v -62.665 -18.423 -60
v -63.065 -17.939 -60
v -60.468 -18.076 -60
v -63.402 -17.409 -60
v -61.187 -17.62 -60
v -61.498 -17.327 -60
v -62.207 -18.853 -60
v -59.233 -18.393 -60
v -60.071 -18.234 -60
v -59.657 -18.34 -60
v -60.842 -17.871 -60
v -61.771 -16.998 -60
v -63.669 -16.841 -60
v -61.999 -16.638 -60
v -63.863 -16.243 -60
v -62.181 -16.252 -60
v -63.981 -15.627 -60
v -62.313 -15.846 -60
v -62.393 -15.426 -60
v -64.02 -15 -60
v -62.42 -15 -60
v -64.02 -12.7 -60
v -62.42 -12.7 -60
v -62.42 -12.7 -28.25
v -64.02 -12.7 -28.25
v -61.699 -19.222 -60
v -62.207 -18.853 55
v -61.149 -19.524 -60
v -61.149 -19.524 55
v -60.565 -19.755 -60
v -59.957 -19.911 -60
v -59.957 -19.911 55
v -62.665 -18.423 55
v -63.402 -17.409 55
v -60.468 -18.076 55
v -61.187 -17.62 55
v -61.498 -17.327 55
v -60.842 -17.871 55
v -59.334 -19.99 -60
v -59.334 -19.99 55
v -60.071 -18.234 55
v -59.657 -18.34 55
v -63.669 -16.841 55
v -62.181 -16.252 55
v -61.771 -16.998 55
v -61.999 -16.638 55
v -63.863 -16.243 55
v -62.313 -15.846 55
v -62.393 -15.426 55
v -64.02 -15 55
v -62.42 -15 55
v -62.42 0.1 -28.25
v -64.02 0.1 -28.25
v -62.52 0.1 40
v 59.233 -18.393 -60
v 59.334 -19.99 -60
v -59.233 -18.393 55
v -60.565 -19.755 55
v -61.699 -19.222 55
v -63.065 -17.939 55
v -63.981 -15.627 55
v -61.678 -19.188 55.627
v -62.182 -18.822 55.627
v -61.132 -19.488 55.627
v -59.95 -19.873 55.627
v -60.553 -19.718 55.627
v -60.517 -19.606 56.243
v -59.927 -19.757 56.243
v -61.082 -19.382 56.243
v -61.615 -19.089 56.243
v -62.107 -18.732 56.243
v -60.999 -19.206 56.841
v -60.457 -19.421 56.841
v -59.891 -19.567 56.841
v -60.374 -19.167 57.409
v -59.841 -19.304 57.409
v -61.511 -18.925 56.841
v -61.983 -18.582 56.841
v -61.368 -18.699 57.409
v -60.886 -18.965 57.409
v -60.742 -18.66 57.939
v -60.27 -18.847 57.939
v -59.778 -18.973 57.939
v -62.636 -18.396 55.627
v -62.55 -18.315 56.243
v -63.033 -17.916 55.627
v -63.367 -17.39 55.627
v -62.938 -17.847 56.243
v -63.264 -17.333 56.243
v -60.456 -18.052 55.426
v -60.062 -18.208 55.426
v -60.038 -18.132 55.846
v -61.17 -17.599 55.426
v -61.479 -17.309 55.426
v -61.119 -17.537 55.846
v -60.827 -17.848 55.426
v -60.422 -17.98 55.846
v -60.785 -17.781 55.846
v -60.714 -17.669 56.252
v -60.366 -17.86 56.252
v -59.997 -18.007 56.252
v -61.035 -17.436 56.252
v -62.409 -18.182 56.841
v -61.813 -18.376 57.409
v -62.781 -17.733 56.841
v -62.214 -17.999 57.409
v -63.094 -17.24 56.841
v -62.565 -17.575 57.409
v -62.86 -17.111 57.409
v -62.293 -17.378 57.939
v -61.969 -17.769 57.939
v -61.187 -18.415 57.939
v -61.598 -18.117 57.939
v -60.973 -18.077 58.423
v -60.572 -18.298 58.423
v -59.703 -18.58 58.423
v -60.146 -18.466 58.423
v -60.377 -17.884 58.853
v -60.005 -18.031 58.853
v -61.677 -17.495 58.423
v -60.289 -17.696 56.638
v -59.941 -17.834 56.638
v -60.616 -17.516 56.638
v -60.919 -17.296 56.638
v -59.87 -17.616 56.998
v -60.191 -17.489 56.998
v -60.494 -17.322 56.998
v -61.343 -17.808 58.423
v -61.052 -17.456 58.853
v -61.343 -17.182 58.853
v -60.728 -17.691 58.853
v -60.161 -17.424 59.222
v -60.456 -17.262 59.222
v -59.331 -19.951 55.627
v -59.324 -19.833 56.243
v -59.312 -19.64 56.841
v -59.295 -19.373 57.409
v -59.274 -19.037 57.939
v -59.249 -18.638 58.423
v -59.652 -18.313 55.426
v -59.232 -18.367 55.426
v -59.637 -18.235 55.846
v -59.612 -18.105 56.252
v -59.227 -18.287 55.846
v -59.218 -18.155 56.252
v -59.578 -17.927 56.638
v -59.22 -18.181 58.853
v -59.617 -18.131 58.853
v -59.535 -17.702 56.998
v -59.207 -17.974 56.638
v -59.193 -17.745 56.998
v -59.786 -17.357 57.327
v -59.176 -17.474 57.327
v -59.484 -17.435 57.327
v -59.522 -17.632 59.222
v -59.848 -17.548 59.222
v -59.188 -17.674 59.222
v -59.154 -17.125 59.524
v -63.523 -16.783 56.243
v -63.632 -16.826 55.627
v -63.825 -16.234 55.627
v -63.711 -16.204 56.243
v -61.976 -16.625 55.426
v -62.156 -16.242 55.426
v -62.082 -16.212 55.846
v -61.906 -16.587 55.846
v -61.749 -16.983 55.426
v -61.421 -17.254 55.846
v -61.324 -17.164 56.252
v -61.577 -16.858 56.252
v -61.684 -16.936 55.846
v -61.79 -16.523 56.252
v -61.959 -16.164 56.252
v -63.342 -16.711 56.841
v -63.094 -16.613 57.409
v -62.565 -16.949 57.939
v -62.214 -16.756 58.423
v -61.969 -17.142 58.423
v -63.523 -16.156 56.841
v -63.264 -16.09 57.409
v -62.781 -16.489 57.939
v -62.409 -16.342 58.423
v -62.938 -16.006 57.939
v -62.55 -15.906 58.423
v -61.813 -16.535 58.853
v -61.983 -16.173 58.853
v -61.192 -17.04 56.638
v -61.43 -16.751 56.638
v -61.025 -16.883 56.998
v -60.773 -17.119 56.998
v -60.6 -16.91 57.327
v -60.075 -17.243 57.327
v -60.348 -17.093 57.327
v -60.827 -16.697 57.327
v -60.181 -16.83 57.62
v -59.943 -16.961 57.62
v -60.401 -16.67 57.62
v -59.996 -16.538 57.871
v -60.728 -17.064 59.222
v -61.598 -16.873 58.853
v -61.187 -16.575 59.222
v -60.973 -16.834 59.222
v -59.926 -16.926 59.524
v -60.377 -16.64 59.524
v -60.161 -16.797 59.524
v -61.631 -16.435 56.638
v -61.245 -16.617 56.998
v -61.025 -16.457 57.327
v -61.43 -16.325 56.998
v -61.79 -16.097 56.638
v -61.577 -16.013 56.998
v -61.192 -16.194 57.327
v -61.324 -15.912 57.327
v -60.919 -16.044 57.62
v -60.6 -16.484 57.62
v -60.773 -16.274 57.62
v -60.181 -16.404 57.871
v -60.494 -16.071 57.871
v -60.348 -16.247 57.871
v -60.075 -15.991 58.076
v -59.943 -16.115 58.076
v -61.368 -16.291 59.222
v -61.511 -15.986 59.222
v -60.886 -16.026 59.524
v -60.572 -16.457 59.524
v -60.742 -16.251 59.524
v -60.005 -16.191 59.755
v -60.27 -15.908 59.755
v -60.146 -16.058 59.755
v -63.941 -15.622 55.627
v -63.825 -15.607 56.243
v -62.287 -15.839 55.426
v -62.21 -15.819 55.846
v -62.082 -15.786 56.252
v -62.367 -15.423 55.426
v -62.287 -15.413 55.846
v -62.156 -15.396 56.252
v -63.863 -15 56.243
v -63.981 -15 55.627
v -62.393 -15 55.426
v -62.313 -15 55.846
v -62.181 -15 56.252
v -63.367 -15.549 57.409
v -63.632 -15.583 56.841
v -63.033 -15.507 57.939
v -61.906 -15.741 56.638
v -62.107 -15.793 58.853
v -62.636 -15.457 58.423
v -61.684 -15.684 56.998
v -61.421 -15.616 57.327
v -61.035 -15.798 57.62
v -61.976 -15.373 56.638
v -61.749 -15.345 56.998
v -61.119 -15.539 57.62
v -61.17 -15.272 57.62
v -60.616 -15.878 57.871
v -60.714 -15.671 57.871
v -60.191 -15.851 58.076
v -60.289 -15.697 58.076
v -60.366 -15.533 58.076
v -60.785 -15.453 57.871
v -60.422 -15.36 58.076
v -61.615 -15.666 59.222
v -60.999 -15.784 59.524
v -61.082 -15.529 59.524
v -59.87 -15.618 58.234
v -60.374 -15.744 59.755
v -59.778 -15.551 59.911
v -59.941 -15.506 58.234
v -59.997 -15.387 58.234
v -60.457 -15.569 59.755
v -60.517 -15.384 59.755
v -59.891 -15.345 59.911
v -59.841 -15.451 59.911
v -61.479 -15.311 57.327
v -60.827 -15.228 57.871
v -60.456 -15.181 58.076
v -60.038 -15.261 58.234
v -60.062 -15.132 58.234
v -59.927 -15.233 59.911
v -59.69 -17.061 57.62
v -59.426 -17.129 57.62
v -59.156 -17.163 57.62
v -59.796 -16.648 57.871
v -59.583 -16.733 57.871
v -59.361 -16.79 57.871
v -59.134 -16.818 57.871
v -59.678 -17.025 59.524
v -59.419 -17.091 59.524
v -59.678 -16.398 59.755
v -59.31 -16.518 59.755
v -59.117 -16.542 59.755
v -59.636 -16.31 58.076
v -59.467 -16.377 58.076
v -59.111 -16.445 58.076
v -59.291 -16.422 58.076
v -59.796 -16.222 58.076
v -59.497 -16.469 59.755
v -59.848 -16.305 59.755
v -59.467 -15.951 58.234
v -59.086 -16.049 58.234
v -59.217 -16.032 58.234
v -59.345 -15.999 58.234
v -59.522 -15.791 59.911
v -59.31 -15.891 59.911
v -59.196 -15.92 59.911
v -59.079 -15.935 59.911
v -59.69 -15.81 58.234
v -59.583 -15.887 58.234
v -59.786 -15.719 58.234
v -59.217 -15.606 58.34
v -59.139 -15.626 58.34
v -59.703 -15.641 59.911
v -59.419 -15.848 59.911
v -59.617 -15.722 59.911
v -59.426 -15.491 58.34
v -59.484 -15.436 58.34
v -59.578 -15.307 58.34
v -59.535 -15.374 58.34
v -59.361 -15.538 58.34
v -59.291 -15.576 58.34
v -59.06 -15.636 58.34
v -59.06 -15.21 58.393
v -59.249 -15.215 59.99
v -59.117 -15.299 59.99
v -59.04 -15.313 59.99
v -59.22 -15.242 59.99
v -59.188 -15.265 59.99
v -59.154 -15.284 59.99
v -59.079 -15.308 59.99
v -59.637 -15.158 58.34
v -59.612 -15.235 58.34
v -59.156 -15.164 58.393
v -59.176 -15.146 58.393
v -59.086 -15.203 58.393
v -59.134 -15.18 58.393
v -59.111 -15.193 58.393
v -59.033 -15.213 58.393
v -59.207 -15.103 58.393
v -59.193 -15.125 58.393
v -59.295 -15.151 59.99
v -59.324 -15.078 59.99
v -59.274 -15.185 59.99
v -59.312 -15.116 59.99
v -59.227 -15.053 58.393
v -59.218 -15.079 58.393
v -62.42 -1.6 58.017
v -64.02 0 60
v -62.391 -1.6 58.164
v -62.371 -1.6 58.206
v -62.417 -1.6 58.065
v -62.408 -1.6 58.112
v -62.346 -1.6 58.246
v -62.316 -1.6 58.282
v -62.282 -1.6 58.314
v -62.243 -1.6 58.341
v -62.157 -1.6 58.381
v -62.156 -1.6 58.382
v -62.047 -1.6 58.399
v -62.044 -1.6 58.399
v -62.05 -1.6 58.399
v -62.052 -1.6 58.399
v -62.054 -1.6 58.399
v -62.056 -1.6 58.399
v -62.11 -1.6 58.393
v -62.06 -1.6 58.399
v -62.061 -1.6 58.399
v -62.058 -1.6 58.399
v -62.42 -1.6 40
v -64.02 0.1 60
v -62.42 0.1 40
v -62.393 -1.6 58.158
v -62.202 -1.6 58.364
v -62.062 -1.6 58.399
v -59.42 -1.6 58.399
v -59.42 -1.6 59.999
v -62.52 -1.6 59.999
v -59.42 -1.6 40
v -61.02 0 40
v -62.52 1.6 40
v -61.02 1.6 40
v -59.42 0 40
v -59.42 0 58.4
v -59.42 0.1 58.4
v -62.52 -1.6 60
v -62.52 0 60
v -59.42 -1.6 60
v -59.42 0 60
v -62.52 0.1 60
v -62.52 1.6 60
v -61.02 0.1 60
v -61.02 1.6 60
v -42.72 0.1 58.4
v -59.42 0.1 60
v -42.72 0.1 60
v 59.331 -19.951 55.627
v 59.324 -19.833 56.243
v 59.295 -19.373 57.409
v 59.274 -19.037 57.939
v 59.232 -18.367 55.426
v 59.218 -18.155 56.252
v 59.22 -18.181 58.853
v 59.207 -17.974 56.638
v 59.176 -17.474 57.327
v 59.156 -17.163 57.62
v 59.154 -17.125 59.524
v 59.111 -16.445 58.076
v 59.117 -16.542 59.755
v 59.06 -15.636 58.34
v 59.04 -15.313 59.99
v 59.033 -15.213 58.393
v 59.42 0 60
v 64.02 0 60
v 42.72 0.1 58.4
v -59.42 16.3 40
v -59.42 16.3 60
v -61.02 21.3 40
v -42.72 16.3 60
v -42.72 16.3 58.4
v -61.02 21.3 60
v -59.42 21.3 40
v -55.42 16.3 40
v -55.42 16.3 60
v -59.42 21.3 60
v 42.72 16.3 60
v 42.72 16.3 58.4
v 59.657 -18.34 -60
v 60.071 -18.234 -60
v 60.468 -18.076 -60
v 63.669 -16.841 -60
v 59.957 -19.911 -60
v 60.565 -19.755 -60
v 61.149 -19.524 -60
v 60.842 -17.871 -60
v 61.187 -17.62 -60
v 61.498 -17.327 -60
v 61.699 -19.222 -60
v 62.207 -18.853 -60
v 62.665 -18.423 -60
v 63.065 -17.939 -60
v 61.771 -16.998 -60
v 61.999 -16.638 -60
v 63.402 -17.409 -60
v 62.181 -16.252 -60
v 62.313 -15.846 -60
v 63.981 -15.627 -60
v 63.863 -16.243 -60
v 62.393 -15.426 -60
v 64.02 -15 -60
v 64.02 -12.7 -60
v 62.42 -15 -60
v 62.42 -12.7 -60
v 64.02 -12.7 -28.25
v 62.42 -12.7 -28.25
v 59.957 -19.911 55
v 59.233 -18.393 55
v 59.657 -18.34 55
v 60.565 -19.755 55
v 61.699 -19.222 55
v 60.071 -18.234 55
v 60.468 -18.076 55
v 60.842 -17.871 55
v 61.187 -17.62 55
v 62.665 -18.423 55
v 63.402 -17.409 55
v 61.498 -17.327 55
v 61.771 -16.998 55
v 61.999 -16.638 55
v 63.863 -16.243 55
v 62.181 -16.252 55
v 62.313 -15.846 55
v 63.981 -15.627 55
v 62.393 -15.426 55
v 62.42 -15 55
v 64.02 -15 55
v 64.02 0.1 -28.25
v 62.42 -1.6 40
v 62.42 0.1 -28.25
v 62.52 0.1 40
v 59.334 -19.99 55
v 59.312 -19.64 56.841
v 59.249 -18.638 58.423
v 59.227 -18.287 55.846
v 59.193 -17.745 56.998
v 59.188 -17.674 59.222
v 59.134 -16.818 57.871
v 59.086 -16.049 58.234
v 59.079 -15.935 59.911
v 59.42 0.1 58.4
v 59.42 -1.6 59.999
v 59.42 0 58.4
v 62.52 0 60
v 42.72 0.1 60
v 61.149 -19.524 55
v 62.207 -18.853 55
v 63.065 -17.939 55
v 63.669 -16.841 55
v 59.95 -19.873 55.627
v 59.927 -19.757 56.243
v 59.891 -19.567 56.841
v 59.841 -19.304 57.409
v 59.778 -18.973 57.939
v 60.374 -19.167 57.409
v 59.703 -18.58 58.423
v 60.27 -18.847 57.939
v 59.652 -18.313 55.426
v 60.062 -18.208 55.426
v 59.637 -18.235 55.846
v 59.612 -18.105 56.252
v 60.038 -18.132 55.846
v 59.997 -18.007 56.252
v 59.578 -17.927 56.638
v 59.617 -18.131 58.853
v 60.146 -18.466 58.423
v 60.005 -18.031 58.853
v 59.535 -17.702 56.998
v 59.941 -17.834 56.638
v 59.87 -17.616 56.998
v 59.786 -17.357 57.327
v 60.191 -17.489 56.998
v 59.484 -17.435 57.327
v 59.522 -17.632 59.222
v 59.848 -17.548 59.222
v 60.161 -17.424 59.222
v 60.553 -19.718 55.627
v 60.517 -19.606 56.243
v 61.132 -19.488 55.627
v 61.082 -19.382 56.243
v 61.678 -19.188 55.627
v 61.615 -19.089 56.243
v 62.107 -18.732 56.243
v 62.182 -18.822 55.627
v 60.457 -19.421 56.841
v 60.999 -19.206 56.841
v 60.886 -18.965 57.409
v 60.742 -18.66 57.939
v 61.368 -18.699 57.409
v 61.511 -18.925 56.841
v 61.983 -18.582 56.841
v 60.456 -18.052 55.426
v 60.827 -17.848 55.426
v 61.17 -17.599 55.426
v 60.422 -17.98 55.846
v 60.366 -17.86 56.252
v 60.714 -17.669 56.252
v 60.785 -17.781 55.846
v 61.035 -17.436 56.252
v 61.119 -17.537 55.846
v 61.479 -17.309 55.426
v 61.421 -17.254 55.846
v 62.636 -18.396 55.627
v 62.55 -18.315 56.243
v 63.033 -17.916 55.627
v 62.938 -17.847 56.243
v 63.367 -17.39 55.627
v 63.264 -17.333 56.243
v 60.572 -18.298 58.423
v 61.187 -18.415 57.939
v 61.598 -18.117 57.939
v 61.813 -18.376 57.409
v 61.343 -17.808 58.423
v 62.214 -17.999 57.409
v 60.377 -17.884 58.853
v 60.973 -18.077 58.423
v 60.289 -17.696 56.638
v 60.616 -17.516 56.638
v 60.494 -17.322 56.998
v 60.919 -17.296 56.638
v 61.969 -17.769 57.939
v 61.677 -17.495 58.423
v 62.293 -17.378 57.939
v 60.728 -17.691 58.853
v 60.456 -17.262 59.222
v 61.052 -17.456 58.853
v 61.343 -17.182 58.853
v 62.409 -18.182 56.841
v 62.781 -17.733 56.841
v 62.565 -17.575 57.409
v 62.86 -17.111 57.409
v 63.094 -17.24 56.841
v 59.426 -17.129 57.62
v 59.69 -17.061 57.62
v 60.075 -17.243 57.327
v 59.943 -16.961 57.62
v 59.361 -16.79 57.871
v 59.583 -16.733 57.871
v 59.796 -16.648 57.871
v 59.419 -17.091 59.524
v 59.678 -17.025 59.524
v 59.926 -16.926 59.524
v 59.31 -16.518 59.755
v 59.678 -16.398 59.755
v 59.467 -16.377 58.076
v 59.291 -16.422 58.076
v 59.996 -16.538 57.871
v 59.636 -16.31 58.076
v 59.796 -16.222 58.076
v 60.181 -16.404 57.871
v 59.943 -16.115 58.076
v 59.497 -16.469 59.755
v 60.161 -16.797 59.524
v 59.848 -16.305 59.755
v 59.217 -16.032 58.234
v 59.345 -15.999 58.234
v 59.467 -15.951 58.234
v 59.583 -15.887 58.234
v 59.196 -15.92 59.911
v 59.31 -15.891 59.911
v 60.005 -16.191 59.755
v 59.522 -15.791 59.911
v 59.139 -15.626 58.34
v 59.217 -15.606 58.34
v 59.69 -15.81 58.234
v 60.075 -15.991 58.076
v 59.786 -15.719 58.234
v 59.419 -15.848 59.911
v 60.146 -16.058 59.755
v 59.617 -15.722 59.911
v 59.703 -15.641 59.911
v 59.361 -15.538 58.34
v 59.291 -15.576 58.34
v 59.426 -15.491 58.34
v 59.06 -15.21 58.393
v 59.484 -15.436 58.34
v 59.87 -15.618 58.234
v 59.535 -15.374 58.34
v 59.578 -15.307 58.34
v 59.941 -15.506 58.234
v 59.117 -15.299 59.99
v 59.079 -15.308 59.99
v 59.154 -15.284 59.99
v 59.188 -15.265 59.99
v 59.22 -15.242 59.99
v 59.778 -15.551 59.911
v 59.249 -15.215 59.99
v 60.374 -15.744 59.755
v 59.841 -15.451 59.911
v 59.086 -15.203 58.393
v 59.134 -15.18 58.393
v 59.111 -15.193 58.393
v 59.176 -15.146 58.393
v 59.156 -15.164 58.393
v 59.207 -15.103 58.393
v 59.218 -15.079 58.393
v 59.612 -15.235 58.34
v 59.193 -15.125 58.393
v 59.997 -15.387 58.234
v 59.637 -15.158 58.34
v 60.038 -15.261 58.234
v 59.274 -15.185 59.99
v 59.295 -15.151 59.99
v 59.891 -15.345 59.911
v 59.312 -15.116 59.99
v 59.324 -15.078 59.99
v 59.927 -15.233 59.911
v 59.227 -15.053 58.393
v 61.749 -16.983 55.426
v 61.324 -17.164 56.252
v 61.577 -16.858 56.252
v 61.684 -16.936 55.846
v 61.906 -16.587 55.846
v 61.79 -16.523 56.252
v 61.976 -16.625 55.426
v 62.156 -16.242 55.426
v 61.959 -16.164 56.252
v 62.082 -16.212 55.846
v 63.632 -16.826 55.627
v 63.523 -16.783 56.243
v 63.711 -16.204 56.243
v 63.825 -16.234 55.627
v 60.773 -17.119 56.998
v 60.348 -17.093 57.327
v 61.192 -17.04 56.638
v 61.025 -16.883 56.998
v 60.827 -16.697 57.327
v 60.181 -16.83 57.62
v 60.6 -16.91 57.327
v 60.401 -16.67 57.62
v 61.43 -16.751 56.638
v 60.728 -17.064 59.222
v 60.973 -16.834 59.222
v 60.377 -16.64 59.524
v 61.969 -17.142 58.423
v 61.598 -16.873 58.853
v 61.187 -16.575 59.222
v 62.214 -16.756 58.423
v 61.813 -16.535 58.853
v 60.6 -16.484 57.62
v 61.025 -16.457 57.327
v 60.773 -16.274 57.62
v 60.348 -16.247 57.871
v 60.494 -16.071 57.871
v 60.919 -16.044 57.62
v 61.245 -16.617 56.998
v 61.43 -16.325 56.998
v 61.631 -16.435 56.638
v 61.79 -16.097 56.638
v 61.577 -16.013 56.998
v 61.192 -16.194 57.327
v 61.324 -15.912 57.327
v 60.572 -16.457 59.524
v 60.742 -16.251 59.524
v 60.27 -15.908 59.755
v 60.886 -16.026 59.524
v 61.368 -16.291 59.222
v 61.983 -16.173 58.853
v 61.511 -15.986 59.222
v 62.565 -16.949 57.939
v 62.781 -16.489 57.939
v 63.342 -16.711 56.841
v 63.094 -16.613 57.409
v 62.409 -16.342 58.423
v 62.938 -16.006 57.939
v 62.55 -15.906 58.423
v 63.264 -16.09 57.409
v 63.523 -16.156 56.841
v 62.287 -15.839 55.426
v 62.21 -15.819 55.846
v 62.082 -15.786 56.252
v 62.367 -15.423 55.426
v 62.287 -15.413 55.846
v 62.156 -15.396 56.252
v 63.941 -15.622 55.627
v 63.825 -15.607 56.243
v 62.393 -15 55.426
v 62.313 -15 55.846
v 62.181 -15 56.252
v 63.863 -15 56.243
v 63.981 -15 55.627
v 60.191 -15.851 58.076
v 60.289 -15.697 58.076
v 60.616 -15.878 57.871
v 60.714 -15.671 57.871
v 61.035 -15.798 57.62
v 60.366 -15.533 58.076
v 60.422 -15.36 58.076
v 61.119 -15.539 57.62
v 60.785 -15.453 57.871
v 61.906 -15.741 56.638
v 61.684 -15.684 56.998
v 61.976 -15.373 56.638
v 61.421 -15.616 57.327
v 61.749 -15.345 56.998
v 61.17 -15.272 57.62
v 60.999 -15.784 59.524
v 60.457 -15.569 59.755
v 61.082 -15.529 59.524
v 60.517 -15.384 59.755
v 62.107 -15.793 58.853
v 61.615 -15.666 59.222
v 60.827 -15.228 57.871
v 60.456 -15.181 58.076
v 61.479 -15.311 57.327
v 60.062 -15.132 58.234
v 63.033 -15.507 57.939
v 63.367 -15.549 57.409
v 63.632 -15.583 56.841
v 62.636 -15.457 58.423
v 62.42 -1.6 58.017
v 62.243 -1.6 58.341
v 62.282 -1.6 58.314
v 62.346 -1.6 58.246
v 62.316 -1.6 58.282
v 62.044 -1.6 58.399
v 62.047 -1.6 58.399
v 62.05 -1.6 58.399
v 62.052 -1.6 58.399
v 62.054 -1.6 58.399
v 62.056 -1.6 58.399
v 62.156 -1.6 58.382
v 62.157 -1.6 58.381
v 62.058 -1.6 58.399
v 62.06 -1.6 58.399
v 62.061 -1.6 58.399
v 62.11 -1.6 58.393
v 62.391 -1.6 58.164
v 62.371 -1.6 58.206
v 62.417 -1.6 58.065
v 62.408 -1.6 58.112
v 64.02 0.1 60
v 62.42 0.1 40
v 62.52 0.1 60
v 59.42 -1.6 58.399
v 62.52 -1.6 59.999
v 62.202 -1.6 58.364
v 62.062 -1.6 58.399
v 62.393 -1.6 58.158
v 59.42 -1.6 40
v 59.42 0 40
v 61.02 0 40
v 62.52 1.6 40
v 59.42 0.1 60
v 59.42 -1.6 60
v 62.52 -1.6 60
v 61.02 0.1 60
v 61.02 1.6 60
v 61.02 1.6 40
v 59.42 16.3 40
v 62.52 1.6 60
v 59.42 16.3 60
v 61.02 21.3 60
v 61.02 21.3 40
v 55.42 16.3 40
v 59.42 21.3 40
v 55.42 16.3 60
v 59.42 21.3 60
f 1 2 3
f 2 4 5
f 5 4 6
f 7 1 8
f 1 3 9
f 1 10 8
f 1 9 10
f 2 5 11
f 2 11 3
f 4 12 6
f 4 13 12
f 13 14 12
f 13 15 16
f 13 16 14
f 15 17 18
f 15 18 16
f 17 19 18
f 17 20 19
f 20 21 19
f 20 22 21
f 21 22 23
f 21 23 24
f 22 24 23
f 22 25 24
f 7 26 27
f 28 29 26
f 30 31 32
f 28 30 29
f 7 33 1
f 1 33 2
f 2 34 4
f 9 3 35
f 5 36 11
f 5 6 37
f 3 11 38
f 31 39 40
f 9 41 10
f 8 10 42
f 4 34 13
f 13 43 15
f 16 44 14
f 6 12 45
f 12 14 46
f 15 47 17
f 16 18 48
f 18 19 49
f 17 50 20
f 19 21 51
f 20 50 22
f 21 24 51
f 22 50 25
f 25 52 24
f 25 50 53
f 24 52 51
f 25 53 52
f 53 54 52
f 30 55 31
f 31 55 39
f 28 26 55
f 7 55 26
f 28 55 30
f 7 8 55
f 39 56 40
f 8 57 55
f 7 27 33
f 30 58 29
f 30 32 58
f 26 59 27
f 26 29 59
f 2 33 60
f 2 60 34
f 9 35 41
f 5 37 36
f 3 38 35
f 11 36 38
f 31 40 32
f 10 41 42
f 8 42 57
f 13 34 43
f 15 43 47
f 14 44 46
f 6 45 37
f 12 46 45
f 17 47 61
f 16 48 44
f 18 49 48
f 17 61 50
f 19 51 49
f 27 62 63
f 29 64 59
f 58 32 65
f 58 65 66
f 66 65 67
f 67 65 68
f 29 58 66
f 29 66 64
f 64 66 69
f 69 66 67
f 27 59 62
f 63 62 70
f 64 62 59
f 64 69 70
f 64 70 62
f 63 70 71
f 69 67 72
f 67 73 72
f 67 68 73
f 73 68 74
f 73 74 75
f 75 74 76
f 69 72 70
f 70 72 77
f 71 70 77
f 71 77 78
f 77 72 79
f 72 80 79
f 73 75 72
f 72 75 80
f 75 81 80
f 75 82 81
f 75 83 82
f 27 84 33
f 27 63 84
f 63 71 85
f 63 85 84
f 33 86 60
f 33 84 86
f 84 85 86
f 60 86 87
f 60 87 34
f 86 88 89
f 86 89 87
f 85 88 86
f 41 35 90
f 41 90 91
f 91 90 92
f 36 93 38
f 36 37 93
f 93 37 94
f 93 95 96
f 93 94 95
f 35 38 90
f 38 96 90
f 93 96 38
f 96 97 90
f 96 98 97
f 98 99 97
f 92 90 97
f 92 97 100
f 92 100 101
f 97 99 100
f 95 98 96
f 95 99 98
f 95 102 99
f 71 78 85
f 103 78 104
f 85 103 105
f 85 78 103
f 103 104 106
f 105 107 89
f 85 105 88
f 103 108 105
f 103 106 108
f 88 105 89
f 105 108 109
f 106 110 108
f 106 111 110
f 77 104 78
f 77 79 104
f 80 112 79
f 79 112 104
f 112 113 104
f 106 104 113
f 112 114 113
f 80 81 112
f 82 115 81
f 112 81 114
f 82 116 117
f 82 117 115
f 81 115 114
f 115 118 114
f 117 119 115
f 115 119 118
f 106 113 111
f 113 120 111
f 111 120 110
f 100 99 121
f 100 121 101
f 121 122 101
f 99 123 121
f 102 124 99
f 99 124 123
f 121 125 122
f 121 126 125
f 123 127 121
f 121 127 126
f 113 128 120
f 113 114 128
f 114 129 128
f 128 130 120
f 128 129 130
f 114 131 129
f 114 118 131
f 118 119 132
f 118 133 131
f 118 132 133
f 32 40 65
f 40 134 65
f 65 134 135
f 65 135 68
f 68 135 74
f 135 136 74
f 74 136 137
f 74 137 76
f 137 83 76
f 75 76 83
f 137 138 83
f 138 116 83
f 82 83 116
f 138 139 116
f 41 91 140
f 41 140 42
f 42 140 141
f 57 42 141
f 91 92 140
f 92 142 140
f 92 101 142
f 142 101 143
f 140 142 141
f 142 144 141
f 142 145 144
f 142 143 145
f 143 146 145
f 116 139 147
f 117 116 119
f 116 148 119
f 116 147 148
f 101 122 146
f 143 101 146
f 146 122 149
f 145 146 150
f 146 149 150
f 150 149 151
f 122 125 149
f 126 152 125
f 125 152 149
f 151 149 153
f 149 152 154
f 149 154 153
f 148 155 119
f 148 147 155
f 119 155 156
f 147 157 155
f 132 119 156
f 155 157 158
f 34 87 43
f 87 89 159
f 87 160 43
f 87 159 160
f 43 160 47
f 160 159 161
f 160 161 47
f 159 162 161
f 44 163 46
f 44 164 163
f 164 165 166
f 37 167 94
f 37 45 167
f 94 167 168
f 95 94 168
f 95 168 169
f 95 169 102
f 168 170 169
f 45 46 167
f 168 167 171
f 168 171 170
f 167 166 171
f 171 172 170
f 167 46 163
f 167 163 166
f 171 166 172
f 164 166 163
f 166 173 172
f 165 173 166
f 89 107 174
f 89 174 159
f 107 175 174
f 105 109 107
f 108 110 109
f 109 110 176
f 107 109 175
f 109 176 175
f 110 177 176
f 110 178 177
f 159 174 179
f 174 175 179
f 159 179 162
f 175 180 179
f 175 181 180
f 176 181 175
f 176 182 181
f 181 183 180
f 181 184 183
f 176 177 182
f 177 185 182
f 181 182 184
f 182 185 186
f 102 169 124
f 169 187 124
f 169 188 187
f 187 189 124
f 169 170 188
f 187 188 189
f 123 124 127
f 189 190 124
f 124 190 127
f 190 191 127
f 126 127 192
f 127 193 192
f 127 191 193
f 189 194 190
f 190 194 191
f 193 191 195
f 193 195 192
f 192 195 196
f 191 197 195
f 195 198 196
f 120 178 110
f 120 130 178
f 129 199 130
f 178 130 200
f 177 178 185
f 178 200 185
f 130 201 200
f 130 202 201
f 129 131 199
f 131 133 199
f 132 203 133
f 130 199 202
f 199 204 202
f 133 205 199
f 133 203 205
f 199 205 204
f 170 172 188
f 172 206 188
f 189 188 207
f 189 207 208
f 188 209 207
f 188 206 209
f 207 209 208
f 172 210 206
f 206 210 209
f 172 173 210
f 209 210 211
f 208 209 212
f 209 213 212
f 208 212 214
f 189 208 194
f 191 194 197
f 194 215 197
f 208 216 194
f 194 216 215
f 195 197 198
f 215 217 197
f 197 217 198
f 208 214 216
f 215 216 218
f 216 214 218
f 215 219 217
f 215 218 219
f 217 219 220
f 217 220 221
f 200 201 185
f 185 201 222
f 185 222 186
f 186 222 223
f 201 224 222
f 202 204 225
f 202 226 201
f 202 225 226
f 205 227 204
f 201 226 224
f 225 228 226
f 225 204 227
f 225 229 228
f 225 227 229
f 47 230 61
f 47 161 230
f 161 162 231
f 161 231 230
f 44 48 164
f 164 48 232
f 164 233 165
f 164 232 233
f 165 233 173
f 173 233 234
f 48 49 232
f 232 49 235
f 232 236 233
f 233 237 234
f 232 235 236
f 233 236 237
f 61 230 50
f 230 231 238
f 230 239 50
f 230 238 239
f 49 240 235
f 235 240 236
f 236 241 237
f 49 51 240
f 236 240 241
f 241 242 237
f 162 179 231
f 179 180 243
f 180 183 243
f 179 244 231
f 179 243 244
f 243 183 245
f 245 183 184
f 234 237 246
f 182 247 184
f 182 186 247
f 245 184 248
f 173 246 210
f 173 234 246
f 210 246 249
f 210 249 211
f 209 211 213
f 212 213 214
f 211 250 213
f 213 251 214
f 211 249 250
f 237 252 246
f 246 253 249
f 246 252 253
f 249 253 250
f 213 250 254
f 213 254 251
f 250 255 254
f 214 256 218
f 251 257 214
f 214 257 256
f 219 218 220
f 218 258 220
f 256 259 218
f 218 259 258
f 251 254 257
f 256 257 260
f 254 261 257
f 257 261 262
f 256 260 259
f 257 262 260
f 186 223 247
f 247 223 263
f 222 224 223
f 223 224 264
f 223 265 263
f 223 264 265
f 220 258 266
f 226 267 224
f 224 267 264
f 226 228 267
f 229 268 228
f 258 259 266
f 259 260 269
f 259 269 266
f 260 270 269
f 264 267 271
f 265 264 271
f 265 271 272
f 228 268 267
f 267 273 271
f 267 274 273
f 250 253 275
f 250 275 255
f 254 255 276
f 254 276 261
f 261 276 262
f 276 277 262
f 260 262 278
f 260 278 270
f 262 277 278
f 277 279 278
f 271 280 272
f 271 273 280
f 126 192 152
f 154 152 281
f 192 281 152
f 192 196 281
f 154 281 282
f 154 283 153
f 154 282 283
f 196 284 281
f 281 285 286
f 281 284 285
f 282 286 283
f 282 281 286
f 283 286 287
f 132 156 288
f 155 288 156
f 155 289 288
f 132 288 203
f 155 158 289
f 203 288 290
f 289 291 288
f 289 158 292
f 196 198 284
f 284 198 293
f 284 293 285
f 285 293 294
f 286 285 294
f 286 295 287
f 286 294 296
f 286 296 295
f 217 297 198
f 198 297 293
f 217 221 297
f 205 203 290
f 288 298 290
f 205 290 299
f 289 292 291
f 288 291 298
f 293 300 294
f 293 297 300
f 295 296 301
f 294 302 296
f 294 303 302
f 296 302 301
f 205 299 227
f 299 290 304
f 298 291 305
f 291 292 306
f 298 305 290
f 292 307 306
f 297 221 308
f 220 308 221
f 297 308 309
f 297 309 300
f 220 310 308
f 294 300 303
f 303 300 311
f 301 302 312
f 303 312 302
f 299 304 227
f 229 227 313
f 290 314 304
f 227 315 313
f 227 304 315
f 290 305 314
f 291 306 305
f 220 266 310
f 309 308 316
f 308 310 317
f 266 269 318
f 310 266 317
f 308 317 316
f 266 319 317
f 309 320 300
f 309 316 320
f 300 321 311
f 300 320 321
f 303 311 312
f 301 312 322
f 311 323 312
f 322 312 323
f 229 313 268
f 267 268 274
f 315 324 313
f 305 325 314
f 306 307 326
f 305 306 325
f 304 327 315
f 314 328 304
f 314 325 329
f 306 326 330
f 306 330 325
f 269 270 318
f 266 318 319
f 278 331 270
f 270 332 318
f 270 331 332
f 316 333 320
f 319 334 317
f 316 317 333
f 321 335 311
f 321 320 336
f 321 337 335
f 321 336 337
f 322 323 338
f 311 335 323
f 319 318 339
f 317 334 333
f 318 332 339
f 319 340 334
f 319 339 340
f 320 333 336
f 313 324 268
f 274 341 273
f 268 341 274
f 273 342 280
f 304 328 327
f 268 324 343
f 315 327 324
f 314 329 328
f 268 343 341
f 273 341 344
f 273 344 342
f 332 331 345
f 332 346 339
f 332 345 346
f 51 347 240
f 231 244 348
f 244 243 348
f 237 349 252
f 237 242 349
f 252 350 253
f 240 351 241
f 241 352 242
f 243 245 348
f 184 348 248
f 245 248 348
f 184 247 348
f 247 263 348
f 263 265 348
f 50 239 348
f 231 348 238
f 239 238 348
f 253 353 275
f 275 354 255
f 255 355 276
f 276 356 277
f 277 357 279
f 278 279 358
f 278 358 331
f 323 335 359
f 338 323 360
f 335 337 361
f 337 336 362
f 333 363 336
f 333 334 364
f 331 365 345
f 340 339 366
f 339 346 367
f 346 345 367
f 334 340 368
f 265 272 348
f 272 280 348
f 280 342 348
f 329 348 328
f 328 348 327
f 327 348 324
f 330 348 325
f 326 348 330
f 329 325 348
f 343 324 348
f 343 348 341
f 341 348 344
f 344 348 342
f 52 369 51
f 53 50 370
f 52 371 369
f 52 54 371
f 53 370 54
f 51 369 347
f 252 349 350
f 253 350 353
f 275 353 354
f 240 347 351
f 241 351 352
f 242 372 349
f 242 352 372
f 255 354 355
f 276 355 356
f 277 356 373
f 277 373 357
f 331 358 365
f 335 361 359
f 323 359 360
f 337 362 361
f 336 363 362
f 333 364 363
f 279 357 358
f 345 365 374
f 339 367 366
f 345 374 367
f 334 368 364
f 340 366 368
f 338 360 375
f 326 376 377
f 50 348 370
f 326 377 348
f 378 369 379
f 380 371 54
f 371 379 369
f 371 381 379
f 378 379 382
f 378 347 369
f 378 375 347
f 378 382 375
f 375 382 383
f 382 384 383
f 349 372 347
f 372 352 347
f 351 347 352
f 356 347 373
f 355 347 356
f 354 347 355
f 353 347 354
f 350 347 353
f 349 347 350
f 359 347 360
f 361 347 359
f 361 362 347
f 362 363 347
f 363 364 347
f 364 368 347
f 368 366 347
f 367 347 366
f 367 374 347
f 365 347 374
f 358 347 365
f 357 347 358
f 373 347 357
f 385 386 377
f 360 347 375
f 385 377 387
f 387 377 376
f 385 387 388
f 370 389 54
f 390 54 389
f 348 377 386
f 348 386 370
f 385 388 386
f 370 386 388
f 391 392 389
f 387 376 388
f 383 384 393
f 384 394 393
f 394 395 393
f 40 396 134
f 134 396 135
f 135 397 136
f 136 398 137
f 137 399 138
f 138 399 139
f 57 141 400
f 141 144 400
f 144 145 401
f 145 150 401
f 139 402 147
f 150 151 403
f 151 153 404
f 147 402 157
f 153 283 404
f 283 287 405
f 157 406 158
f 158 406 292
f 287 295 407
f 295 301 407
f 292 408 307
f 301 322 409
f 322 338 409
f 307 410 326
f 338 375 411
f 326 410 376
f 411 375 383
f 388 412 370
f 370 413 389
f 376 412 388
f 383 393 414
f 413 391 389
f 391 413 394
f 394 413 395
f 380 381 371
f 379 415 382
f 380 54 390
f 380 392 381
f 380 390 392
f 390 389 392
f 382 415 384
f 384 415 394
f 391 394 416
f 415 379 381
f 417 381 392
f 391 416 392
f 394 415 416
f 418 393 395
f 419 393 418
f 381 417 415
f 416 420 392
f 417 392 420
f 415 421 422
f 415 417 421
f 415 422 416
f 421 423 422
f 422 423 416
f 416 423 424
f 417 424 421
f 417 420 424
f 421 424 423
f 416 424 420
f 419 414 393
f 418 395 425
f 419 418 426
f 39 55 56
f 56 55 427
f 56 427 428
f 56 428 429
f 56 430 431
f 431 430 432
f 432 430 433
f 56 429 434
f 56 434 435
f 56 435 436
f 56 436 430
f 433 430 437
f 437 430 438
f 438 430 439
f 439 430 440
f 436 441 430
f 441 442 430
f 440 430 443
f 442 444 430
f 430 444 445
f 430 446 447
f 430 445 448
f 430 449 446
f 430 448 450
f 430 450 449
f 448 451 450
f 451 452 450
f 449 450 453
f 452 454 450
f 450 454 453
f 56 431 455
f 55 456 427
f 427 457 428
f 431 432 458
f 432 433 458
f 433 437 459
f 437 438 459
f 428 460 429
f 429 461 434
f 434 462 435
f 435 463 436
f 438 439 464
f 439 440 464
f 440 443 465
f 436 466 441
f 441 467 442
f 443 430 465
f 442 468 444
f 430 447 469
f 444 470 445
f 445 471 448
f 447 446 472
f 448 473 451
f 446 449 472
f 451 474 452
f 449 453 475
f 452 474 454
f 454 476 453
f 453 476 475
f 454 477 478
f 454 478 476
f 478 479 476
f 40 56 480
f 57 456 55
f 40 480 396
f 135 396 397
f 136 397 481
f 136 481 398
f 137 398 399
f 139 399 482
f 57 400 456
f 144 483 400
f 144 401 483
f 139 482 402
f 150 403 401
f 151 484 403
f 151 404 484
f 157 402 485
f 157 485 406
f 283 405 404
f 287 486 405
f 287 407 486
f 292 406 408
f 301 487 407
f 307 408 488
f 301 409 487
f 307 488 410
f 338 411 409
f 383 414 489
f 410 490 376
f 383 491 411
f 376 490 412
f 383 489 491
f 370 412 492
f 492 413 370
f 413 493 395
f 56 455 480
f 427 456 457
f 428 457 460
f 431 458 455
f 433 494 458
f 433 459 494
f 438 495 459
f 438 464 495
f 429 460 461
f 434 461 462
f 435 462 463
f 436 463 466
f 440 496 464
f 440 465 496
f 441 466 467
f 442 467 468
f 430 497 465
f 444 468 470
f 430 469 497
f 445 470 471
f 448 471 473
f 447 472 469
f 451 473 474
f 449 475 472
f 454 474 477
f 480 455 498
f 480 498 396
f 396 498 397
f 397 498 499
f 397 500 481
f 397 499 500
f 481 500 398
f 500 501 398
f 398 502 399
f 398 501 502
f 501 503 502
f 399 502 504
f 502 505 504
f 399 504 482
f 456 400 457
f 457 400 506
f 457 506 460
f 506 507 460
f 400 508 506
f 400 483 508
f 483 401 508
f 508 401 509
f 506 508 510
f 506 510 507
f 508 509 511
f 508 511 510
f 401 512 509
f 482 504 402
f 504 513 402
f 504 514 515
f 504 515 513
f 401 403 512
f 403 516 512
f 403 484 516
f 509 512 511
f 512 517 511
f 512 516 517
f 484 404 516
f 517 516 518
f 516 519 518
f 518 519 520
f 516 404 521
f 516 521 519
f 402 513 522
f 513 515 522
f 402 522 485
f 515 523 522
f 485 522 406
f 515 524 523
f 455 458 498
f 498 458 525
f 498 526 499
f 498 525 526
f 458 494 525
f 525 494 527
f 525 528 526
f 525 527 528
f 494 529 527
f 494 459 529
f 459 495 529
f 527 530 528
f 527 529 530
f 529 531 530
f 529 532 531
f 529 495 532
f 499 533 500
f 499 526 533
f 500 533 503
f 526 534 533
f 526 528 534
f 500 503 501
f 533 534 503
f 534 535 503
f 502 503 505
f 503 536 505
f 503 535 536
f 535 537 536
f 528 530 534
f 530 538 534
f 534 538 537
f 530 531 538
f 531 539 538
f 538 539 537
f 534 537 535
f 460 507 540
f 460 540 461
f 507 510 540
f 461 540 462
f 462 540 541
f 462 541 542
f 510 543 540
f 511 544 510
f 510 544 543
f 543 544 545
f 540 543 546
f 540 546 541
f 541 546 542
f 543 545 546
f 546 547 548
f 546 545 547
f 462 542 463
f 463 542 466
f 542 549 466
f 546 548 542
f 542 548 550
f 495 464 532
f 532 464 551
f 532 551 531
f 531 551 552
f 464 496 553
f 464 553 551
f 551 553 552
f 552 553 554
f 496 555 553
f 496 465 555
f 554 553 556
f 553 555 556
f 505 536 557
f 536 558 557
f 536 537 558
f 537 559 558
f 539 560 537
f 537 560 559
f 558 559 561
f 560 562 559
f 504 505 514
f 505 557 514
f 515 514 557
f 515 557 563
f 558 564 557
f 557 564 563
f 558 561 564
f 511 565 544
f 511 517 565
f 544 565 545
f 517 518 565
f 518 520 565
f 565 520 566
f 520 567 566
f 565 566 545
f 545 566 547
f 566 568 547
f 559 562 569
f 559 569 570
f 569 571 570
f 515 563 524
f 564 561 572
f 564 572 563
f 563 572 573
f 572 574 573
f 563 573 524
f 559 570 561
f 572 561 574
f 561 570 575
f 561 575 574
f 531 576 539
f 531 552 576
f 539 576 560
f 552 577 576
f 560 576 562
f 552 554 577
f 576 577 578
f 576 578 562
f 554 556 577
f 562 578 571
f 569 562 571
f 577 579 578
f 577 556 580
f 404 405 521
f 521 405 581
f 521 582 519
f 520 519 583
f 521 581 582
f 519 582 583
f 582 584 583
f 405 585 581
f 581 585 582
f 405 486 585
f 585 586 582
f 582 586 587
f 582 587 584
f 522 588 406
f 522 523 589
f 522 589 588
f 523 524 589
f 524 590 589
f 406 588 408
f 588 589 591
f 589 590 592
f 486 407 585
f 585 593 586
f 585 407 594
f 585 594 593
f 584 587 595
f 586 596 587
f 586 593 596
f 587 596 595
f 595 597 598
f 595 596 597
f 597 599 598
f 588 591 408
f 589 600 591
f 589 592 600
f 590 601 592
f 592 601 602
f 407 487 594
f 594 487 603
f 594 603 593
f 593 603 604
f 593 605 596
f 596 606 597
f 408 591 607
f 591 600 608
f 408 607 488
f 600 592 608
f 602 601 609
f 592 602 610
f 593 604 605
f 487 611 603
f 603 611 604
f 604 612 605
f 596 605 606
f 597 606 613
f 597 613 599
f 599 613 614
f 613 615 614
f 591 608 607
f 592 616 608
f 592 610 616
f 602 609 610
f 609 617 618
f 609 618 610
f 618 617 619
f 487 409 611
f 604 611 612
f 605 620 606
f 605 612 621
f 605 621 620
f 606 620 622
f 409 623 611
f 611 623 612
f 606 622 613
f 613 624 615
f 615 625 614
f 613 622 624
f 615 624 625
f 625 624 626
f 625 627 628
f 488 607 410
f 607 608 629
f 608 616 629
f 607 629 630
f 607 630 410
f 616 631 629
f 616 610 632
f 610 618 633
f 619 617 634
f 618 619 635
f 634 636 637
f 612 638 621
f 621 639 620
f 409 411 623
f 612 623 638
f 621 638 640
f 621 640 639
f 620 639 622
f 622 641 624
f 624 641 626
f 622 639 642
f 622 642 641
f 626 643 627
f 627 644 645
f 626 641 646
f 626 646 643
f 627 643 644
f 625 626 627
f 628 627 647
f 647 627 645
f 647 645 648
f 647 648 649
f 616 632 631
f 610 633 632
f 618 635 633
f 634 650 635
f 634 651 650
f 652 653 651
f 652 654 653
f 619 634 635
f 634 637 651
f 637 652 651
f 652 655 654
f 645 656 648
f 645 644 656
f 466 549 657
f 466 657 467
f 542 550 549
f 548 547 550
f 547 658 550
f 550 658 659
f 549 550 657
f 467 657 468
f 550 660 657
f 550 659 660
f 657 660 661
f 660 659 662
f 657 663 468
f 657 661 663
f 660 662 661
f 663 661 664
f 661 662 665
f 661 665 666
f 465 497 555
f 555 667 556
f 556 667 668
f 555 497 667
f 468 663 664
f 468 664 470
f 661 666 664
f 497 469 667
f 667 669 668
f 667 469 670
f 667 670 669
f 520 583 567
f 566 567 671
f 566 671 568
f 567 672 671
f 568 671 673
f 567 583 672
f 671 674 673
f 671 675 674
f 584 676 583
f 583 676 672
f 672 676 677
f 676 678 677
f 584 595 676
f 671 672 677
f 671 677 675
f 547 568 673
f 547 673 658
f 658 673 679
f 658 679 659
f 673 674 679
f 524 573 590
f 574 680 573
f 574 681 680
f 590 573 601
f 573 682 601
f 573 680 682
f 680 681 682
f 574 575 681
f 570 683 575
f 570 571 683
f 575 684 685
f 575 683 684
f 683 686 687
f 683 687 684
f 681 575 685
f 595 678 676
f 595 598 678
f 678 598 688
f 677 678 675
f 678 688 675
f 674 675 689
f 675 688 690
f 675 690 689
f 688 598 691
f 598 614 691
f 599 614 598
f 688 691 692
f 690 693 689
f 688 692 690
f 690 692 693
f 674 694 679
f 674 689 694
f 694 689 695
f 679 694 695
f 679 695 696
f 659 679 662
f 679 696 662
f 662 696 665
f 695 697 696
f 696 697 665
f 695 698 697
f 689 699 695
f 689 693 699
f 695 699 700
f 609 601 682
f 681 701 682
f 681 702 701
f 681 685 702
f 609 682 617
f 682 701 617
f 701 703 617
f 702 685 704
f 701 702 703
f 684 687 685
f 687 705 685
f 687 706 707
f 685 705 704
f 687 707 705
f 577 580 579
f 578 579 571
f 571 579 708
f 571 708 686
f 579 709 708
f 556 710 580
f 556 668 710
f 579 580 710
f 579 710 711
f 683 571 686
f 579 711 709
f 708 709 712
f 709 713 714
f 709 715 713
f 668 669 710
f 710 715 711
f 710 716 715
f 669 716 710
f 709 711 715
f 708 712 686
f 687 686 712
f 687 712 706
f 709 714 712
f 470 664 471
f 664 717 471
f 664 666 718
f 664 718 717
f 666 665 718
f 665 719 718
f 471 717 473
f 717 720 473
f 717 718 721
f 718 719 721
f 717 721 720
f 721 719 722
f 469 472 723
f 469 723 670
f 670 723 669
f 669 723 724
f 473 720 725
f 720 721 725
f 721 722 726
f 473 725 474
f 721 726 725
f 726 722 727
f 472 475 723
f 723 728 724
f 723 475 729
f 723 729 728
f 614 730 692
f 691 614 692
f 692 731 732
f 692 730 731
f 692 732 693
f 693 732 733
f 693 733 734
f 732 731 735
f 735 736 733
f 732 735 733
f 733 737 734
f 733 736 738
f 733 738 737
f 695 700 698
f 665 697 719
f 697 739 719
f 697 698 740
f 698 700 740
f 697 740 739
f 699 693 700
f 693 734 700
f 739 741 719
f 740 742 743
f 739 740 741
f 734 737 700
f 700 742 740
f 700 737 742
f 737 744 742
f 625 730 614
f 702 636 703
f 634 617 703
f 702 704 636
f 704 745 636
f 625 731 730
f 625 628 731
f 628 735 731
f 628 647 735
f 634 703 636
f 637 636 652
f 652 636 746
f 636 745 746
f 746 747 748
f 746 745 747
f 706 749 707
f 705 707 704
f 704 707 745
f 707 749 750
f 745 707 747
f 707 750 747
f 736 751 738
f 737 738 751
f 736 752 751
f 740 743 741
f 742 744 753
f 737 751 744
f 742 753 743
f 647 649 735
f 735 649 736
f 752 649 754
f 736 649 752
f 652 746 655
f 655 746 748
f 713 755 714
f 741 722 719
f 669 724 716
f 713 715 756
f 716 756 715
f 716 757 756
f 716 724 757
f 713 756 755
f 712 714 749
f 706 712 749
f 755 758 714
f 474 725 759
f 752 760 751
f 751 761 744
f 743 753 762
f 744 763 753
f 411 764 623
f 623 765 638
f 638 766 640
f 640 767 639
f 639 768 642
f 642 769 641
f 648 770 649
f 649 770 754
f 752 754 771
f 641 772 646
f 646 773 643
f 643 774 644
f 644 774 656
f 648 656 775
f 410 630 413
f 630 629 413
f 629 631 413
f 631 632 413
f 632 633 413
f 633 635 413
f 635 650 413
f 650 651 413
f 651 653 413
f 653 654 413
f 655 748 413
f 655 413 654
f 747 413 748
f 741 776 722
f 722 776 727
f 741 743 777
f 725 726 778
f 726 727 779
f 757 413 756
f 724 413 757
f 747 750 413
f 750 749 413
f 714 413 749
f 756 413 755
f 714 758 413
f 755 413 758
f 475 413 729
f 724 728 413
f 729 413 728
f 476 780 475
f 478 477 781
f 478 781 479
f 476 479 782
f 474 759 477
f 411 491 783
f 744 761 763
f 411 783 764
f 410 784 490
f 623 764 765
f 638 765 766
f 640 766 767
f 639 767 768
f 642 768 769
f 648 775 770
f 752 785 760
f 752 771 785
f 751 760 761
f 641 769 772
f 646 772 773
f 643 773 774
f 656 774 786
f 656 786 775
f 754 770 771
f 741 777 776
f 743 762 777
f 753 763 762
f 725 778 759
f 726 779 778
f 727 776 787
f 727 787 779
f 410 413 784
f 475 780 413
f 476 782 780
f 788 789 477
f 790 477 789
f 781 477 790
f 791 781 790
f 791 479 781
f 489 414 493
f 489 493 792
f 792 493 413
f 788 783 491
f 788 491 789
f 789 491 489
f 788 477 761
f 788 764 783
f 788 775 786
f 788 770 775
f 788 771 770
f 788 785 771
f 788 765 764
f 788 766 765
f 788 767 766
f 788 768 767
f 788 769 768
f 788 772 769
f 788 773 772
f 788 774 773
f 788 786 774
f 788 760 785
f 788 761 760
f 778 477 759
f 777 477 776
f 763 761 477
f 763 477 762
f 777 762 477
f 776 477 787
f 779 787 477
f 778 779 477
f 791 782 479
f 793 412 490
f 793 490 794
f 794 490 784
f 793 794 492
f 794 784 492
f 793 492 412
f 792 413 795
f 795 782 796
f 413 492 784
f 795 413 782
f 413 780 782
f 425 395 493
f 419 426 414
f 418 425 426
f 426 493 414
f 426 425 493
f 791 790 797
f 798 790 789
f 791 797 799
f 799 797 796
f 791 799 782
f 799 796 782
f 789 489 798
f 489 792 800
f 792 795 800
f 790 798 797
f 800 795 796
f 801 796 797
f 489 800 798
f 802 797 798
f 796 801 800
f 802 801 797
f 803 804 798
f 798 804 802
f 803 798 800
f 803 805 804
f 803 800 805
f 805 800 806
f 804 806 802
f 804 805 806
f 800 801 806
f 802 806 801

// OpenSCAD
// --- Parametric Wire Cover Mount (Fixed Snap-Fit) ---
// Status: Snap-fit added to clamps.

// --- Dimensions ---
inch = 25.4;

// Post Dimensions
post_size = 0.5 * inch;
post_gap_inches = 3.6;
post_gap = post_gap_inches * inch;

// Mount Dimensions
mount_depth = 20;             // Y-axis: How far out the box sticks
mount_height = 120;           // Z-axis: Vertical length
clamp_height = 20;            // Z-axis: Width of the clip band
lip_width = 4;                // How deep the hook grabs
lead_in_length = 5;           // Length of the angled ramp tip
wall_thickness = 1.6;
rail_offset = 3;

// Baseboard Cutout Dimensions
notch_height = 1.25 * inch;
notch_depth = 0.5 * inch;

// Rounding Dimensions
rounding_radius = 5.0;

// Tolerance
clearance = 1.0;
overlap = 0.1;
visor_clearance = 3.0;

// --- Calculations ---
total_width = post_gap + (2 * post_size) + (2 * wall_thickness) + (2 * clearance) + (2 * rail_offset);
post_start_x = post_gap / 2;
leg_length = post_size + wall_thickness + (clearance * 2);

$fn = 50;

// Helper Module: Creates a box with a rounded Front Face but Square Back Face
module rounded_front_box(w, d, h, r) {
    hull() {
        translate([-w/2, 0, -h/2]) cube([w, 0.1, h]);
        translate([-w/2 + r, -d + r, h/2 - r]) sphere(r=r);
        translate([w/2 - r, -d + r, h/2 - r]) sphere(r=r);
        translate([-w/2 + r, -d + r, -h/2]) cylinder(r=r, h=0.1);
        translate([w/2 - r, -d + r, -h/2]) cylinder(r=r, h=0.1);
    }
}

module wire_cover_mount() {
    union() {
        // 1. THE MAIN HOLLOW BOX
        difference() {
            translate([0, 0, 0])
                rounded_front_box(total_width, mount_depth, mount_height, rounding_radius);

            hull() {
                $iw = total_width - 2*wall_thickness;
                $ir = rounding_radius - wall_thickness;
                $id = mount_depth - wall_thickness;
                $z_top = mount_height/2 - wall_thickness;
                $z_bottom = -mount_height/2 - 50.0;

                translate([- $iw/2, overlap, $z_bottom])
                    cube([$iw, 0.1, $z_top - $z_bottom]);

                translate([- $iw/2 + $ir, -$id + $ir, $z_top - $ir]) sphere(r=$ir);
                translate([$iw/2 - $ir, -$id + $ir, $z_top - $ir]) sphere(r=$ir);
                translate([- $iw/2 + $ir, -$id + $ir, $z_bottom]) cylinder(r=$ir, h=0.1);
                translate([$iw/2 - $ir, -$id + $ir, $z_bottom]) cylinder(r=$ir, h=0.1);
            }

            // Baseboard Notches
            translate([-total_width/2 - 5, -notch_depth, -mount_height/2 - 5])
            cube([wall_thickness + 10, notch_depth + 5, notch_height + 5]);

            translate([total_width/2 - wall_thickness - 0.1, -notch_depth, -mount_height/2 - 5])
            cube([wall_thickness + 10, notch_depth + 5, notch_height + 5]);
        }

        // 2. THE CLAMPS (UPDATED SHAPE)
        // Left Clamp
        translate([
            -post_start_x - post_size - wall_thickness - clearance,
            0,
            mount_height/2 - clamp_height
        ])
        linear_extrude(clamp_height)
            polygon(points=[
                [0, 0],
                [wall_thickness, 0],
                [wall_thickness, leg_length],                // Base of Hook
                [wall_thickness + lip_width, leg_length],    // The Barb (Locks behind post)
                [wall_thickness, leg_length + lead_in_length], // The Tip (Ramp for sliding on)
                [0, leg_length + lead_in_length]             // Outer Tip
            ]);

        // Right Clamp
        translate([
            post_start_x + post_size + clearance + wall_thickness,
            0,
            mount_height/2 - clamp_height
        ])
        mirror([1,0,0])
        linear_extrude(clamp_height)
            polygon(points=[
                [0, 0],
                [wall_thickness, 0],
                [wall_thickness, leg_length],                // Base of Hook
                [wall_thickness + lip_width, leg_length],    // The Barb (Locks behind post)
                [wall_thickness, leg_length + lead_in_length], // The Tip (Ramp for sliding on)
                [0, leg_length + lead_in_length]             // Outer Tip
            ]);

        // 3. REINFORCEMENT BLOCKS
        translate([-total_width/2 + wall_thickness - overlap, -wall_thickness, mount_height/2 - clamp_height])
            cube([rail_offset + overlap, wall_thickness * 2, clamp_height]);

        translate([total_width/2 - wall_thickness - rail_offset, -wall_thickness, mount_height/2 - clamp_height])
            cube([rail_offset + overlap, wall_thickness * 2, clamp_height]);

        // 4. CENTRAL BRIDGE
        translate([-post_start_x + visor_clearance, 0, mount_height/2 - wall_thickness])
            cube([post_gap - (2 * visor_clearance), leg_length, wall_thickness]);
    }
}

// --- Render ---
color("skyblue") wire_cover_mount();

// --- Visual Ghost of Posts ---
%union() {
    translate([-post_start_x - post_size, leg_length - post_size - clearance, -mount_height/2])
        color("orange") cube([post_size, post_size, mount_height + 20]);
    translate([post_start_x, leg_length - post_size - clearance, -mount_height/2])
        color("orange") cube([post_size, post_size, mount_height + 20]);
}
